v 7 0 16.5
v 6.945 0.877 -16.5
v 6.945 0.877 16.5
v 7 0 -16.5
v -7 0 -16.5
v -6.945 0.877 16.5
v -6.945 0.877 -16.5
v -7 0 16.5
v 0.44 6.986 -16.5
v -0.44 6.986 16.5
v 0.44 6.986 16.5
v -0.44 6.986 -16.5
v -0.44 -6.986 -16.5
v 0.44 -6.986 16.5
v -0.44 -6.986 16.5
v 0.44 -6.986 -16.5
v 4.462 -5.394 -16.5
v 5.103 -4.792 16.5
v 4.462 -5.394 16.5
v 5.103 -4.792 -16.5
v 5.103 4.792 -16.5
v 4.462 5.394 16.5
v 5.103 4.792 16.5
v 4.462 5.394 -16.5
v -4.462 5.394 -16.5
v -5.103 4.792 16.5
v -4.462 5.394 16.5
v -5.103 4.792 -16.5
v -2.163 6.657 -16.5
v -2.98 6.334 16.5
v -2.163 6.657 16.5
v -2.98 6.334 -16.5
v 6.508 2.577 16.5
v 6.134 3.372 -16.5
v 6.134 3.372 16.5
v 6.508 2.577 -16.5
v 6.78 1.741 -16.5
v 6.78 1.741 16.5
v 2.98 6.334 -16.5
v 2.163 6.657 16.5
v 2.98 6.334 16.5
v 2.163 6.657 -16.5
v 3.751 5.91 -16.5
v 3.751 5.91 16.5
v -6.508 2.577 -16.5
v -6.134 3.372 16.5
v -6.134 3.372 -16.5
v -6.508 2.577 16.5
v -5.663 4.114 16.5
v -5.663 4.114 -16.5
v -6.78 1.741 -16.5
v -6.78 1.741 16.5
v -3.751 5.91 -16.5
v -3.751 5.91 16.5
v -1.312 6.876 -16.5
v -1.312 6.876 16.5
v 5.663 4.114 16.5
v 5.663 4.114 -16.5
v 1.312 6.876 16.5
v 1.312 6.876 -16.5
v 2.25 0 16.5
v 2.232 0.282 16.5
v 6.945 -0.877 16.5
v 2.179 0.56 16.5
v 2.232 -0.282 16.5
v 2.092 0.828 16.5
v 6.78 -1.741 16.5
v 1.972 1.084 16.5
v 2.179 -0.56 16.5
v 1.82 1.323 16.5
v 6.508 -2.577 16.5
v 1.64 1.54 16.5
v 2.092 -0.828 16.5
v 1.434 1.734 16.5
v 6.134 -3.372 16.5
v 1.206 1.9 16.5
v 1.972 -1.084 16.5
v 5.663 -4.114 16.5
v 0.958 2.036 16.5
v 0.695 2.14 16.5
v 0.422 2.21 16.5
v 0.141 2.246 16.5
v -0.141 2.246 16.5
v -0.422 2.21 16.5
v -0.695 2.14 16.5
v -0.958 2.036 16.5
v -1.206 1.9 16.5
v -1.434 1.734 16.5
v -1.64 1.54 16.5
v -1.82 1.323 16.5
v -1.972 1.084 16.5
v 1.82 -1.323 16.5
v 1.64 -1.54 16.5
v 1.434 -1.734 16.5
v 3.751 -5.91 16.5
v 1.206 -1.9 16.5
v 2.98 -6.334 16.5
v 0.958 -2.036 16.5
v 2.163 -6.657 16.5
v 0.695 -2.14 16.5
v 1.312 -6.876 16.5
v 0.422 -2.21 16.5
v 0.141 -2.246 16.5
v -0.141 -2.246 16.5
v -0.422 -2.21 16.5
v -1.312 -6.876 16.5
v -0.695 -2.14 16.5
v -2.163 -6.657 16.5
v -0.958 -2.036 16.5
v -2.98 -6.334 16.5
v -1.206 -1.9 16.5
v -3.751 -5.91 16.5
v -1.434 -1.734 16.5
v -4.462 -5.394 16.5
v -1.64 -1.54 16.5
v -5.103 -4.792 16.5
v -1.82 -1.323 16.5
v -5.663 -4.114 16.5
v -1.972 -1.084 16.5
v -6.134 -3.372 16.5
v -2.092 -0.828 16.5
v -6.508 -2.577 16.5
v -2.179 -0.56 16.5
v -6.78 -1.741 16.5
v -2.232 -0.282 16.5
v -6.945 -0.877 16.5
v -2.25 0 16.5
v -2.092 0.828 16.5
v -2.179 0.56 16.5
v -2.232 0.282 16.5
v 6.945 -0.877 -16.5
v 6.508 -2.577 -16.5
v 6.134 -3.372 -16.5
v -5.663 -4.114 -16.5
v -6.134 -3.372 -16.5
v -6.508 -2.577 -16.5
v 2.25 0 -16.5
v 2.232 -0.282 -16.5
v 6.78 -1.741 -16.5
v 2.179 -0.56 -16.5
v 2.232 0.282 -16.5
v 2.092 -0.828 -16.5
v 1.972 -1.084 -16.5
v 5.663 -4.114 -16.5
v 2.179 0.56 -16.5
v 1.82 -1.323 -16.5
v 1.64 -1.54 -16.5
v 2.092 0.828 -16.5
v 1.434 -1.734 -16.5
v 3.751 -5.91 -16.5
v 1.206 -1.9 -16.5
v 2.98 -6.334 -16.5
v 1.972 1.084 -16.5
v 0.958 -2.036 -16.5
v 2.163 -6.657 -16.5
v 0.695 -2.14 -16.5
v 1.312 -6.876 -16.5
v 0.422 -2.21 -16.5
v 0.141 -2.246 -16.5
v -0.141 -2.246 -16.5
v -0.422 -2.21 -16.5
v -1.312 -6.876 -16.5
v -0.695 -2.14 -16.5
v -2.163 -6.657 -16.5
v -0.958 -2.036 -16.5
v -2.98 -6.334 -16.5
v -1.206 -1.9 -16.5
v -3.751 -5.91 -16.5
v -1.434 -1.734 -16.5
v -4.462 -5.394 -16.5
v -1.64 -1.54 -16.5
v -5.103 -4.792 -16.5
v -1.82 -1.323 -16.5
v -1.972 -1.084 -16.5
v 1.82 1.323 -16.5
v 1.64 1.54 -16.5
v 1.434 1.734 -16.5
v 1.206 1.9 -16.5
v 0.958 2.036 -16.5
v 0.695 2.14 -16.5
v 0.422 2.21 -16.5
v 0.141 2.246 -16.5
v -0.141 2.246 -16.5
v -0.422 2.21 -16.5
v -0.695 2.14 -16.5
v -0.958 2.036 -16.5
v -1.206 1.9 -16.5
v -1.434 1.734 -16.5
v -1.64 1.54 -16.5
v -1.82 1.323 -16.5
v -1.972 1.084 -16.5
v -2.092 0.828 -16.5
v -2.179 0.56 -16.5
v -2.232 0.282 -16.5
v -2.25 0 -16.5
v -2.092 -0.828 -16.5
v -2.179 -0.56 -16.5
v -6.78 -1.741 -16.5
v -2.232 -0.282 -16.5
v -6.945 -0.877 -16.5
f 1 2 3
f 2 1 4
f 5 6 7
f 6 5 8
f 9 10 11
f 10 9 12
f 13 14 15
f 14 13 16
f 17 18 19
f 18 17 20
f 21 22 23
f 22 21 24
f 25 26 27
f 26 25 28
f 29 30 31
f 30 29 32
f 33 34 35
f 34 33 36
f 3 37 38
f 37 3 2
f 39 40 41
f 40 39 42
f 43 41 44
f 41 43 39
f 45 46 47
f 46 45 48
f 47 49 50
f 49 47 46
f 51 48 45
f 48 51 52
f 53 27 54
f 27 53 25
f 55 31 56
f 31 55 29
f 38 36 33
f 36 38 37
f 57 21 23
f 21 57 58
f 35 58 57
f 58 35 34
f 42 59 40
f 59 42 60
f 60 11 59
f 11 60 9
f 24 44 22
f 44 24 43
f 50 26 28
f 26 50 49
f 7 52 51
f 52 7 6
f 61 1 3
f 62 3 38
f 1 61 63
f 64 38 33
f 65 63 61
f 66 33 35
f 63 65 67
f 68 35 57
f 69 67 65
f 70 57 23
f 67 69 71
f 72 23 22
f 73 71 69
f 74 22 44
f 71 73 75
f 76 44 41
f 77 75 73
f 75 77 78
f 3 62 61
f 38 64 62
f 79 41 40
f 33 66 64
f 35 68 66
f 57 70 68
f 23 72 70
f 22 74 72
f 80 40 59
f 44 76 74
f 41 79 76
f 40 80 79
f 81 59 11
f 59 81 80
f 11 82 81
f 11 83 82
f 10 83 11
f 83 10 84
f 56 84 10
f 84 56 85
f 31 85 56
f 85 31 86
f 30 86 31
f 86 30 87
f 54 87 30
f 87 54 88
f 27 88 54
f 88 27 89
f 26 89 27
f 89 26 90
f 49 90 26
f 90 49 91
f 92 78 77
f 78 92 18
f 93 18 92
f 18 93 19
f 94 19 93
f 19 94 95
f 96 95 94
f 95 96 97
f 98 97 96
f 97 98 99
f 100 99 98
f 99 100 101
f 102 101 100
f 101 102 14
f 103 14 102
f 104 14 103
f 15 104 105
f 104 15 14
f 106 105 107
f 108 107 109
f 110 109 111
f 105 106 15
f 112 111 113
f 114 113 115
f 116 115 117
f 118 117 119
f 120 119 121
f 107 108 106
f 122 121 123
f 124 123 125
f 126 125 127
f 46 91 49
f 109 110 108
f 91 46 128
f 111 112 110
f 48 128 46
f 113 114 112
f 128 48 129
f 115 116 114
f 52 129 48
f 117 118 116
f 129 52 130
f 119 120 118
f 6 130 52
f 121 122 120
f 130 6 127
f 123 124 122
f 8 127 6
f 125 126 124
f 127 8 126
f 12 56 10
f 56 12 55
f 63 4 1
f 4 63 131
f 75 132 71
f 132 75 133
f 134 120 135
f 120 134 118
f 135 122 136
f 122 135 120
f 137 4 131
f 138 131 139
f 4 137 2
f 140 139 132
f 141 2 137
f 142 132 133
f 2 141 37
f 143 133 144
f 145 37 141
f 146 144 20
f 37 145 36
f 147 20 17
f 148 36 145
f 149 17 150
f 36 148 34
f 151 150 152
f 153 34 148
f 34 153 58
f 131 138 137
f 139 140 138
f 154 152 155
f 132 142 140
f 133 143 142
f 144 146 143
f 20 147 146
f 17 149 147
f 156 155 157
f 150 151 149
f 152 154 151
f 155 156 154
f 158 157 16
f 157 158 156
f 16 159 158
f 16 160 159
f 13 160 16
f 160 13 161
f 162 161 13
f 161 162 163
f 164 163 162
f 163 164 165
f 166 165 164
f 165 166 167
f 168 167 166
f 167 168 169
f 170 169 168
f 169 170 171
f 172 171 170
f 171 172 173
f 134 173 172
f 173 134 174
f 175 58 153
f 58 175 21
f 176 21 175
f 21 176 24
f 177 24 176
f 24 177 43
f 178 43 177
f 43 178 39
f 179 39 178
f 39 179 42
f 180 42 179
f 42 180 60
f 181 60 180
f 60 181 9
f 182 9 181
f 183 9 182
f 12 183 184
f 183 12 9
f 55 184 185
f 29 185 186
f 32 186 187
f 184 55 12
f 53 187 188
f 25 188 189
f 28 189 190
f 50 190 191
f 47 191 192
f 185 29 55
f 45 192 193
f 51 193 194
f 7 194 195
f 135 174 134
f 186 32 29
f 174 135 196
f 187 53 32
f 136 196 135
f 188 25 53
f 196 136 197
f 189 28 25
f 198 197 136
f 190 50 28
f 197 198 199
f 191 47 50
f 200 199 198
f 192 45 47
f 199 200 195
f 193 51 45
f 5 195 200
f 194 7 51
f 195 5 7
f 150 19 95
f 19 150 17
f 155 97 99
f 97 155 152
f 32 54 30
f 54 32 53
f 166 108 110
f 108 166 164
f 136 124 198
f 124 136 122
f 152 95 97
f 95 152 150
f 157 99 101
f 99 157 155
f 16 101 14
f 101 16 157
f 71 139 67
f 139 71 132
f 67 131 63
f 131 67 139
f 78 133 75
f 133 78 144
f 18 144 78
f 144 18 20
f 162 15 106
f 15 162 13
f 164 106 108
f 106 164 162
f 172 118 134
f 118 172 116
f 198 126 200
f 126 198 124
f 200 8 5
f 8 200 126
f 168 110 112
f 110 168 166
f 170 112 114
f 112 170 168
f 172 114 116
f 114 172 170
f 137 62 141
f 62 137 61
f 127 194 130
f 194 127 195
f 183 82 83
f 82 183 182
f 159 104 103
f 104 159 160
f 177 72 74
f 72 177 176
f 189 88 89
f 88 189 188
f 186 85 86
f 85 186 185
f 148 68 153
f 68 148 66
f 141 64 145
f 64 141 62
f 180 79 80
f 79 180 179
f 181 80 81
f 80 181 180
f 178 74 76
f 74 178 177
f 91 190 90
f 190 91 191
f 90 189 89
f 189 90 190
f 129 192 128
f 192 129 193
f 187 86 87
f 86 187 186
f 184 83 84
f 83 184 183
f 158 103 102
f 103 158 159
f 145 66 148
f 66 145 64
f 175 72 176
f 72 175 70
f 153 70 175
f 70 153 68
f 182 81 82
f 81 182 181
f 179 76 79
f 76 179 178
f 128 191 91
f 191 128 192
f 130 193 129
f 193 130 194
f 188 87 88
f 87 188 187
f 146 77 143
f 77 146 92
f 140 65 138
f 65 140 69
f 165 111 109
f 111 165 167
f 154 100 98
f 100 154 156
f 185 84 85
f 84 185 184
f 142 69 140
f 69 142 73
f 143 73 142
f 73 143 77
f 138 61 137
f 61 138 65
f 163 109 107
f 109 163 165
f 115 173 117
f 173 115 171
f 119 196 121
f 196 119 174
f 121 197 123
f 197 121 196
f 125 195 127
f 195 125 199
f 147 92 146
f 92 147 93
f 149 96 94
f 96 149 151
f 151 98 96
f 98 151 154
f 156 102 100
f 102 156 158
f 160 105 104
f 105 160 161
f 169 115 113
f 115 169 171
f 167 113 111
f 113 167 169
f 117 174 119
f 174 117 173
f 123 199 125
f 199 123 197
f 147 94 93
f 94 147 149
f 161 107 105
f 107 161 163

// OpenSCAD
$fn = 50;


difference() {
	union() {
		translate(v = [0, 0, -16.5000000000]) {
			cylinder(h = 33, r = 7.0000000000);
		}
	}
	union() {
		translate(v = [0, 0, -100.0000000000]) {
			cylinder(h = 200, r = 2.2500000000);
		}
	}
}
